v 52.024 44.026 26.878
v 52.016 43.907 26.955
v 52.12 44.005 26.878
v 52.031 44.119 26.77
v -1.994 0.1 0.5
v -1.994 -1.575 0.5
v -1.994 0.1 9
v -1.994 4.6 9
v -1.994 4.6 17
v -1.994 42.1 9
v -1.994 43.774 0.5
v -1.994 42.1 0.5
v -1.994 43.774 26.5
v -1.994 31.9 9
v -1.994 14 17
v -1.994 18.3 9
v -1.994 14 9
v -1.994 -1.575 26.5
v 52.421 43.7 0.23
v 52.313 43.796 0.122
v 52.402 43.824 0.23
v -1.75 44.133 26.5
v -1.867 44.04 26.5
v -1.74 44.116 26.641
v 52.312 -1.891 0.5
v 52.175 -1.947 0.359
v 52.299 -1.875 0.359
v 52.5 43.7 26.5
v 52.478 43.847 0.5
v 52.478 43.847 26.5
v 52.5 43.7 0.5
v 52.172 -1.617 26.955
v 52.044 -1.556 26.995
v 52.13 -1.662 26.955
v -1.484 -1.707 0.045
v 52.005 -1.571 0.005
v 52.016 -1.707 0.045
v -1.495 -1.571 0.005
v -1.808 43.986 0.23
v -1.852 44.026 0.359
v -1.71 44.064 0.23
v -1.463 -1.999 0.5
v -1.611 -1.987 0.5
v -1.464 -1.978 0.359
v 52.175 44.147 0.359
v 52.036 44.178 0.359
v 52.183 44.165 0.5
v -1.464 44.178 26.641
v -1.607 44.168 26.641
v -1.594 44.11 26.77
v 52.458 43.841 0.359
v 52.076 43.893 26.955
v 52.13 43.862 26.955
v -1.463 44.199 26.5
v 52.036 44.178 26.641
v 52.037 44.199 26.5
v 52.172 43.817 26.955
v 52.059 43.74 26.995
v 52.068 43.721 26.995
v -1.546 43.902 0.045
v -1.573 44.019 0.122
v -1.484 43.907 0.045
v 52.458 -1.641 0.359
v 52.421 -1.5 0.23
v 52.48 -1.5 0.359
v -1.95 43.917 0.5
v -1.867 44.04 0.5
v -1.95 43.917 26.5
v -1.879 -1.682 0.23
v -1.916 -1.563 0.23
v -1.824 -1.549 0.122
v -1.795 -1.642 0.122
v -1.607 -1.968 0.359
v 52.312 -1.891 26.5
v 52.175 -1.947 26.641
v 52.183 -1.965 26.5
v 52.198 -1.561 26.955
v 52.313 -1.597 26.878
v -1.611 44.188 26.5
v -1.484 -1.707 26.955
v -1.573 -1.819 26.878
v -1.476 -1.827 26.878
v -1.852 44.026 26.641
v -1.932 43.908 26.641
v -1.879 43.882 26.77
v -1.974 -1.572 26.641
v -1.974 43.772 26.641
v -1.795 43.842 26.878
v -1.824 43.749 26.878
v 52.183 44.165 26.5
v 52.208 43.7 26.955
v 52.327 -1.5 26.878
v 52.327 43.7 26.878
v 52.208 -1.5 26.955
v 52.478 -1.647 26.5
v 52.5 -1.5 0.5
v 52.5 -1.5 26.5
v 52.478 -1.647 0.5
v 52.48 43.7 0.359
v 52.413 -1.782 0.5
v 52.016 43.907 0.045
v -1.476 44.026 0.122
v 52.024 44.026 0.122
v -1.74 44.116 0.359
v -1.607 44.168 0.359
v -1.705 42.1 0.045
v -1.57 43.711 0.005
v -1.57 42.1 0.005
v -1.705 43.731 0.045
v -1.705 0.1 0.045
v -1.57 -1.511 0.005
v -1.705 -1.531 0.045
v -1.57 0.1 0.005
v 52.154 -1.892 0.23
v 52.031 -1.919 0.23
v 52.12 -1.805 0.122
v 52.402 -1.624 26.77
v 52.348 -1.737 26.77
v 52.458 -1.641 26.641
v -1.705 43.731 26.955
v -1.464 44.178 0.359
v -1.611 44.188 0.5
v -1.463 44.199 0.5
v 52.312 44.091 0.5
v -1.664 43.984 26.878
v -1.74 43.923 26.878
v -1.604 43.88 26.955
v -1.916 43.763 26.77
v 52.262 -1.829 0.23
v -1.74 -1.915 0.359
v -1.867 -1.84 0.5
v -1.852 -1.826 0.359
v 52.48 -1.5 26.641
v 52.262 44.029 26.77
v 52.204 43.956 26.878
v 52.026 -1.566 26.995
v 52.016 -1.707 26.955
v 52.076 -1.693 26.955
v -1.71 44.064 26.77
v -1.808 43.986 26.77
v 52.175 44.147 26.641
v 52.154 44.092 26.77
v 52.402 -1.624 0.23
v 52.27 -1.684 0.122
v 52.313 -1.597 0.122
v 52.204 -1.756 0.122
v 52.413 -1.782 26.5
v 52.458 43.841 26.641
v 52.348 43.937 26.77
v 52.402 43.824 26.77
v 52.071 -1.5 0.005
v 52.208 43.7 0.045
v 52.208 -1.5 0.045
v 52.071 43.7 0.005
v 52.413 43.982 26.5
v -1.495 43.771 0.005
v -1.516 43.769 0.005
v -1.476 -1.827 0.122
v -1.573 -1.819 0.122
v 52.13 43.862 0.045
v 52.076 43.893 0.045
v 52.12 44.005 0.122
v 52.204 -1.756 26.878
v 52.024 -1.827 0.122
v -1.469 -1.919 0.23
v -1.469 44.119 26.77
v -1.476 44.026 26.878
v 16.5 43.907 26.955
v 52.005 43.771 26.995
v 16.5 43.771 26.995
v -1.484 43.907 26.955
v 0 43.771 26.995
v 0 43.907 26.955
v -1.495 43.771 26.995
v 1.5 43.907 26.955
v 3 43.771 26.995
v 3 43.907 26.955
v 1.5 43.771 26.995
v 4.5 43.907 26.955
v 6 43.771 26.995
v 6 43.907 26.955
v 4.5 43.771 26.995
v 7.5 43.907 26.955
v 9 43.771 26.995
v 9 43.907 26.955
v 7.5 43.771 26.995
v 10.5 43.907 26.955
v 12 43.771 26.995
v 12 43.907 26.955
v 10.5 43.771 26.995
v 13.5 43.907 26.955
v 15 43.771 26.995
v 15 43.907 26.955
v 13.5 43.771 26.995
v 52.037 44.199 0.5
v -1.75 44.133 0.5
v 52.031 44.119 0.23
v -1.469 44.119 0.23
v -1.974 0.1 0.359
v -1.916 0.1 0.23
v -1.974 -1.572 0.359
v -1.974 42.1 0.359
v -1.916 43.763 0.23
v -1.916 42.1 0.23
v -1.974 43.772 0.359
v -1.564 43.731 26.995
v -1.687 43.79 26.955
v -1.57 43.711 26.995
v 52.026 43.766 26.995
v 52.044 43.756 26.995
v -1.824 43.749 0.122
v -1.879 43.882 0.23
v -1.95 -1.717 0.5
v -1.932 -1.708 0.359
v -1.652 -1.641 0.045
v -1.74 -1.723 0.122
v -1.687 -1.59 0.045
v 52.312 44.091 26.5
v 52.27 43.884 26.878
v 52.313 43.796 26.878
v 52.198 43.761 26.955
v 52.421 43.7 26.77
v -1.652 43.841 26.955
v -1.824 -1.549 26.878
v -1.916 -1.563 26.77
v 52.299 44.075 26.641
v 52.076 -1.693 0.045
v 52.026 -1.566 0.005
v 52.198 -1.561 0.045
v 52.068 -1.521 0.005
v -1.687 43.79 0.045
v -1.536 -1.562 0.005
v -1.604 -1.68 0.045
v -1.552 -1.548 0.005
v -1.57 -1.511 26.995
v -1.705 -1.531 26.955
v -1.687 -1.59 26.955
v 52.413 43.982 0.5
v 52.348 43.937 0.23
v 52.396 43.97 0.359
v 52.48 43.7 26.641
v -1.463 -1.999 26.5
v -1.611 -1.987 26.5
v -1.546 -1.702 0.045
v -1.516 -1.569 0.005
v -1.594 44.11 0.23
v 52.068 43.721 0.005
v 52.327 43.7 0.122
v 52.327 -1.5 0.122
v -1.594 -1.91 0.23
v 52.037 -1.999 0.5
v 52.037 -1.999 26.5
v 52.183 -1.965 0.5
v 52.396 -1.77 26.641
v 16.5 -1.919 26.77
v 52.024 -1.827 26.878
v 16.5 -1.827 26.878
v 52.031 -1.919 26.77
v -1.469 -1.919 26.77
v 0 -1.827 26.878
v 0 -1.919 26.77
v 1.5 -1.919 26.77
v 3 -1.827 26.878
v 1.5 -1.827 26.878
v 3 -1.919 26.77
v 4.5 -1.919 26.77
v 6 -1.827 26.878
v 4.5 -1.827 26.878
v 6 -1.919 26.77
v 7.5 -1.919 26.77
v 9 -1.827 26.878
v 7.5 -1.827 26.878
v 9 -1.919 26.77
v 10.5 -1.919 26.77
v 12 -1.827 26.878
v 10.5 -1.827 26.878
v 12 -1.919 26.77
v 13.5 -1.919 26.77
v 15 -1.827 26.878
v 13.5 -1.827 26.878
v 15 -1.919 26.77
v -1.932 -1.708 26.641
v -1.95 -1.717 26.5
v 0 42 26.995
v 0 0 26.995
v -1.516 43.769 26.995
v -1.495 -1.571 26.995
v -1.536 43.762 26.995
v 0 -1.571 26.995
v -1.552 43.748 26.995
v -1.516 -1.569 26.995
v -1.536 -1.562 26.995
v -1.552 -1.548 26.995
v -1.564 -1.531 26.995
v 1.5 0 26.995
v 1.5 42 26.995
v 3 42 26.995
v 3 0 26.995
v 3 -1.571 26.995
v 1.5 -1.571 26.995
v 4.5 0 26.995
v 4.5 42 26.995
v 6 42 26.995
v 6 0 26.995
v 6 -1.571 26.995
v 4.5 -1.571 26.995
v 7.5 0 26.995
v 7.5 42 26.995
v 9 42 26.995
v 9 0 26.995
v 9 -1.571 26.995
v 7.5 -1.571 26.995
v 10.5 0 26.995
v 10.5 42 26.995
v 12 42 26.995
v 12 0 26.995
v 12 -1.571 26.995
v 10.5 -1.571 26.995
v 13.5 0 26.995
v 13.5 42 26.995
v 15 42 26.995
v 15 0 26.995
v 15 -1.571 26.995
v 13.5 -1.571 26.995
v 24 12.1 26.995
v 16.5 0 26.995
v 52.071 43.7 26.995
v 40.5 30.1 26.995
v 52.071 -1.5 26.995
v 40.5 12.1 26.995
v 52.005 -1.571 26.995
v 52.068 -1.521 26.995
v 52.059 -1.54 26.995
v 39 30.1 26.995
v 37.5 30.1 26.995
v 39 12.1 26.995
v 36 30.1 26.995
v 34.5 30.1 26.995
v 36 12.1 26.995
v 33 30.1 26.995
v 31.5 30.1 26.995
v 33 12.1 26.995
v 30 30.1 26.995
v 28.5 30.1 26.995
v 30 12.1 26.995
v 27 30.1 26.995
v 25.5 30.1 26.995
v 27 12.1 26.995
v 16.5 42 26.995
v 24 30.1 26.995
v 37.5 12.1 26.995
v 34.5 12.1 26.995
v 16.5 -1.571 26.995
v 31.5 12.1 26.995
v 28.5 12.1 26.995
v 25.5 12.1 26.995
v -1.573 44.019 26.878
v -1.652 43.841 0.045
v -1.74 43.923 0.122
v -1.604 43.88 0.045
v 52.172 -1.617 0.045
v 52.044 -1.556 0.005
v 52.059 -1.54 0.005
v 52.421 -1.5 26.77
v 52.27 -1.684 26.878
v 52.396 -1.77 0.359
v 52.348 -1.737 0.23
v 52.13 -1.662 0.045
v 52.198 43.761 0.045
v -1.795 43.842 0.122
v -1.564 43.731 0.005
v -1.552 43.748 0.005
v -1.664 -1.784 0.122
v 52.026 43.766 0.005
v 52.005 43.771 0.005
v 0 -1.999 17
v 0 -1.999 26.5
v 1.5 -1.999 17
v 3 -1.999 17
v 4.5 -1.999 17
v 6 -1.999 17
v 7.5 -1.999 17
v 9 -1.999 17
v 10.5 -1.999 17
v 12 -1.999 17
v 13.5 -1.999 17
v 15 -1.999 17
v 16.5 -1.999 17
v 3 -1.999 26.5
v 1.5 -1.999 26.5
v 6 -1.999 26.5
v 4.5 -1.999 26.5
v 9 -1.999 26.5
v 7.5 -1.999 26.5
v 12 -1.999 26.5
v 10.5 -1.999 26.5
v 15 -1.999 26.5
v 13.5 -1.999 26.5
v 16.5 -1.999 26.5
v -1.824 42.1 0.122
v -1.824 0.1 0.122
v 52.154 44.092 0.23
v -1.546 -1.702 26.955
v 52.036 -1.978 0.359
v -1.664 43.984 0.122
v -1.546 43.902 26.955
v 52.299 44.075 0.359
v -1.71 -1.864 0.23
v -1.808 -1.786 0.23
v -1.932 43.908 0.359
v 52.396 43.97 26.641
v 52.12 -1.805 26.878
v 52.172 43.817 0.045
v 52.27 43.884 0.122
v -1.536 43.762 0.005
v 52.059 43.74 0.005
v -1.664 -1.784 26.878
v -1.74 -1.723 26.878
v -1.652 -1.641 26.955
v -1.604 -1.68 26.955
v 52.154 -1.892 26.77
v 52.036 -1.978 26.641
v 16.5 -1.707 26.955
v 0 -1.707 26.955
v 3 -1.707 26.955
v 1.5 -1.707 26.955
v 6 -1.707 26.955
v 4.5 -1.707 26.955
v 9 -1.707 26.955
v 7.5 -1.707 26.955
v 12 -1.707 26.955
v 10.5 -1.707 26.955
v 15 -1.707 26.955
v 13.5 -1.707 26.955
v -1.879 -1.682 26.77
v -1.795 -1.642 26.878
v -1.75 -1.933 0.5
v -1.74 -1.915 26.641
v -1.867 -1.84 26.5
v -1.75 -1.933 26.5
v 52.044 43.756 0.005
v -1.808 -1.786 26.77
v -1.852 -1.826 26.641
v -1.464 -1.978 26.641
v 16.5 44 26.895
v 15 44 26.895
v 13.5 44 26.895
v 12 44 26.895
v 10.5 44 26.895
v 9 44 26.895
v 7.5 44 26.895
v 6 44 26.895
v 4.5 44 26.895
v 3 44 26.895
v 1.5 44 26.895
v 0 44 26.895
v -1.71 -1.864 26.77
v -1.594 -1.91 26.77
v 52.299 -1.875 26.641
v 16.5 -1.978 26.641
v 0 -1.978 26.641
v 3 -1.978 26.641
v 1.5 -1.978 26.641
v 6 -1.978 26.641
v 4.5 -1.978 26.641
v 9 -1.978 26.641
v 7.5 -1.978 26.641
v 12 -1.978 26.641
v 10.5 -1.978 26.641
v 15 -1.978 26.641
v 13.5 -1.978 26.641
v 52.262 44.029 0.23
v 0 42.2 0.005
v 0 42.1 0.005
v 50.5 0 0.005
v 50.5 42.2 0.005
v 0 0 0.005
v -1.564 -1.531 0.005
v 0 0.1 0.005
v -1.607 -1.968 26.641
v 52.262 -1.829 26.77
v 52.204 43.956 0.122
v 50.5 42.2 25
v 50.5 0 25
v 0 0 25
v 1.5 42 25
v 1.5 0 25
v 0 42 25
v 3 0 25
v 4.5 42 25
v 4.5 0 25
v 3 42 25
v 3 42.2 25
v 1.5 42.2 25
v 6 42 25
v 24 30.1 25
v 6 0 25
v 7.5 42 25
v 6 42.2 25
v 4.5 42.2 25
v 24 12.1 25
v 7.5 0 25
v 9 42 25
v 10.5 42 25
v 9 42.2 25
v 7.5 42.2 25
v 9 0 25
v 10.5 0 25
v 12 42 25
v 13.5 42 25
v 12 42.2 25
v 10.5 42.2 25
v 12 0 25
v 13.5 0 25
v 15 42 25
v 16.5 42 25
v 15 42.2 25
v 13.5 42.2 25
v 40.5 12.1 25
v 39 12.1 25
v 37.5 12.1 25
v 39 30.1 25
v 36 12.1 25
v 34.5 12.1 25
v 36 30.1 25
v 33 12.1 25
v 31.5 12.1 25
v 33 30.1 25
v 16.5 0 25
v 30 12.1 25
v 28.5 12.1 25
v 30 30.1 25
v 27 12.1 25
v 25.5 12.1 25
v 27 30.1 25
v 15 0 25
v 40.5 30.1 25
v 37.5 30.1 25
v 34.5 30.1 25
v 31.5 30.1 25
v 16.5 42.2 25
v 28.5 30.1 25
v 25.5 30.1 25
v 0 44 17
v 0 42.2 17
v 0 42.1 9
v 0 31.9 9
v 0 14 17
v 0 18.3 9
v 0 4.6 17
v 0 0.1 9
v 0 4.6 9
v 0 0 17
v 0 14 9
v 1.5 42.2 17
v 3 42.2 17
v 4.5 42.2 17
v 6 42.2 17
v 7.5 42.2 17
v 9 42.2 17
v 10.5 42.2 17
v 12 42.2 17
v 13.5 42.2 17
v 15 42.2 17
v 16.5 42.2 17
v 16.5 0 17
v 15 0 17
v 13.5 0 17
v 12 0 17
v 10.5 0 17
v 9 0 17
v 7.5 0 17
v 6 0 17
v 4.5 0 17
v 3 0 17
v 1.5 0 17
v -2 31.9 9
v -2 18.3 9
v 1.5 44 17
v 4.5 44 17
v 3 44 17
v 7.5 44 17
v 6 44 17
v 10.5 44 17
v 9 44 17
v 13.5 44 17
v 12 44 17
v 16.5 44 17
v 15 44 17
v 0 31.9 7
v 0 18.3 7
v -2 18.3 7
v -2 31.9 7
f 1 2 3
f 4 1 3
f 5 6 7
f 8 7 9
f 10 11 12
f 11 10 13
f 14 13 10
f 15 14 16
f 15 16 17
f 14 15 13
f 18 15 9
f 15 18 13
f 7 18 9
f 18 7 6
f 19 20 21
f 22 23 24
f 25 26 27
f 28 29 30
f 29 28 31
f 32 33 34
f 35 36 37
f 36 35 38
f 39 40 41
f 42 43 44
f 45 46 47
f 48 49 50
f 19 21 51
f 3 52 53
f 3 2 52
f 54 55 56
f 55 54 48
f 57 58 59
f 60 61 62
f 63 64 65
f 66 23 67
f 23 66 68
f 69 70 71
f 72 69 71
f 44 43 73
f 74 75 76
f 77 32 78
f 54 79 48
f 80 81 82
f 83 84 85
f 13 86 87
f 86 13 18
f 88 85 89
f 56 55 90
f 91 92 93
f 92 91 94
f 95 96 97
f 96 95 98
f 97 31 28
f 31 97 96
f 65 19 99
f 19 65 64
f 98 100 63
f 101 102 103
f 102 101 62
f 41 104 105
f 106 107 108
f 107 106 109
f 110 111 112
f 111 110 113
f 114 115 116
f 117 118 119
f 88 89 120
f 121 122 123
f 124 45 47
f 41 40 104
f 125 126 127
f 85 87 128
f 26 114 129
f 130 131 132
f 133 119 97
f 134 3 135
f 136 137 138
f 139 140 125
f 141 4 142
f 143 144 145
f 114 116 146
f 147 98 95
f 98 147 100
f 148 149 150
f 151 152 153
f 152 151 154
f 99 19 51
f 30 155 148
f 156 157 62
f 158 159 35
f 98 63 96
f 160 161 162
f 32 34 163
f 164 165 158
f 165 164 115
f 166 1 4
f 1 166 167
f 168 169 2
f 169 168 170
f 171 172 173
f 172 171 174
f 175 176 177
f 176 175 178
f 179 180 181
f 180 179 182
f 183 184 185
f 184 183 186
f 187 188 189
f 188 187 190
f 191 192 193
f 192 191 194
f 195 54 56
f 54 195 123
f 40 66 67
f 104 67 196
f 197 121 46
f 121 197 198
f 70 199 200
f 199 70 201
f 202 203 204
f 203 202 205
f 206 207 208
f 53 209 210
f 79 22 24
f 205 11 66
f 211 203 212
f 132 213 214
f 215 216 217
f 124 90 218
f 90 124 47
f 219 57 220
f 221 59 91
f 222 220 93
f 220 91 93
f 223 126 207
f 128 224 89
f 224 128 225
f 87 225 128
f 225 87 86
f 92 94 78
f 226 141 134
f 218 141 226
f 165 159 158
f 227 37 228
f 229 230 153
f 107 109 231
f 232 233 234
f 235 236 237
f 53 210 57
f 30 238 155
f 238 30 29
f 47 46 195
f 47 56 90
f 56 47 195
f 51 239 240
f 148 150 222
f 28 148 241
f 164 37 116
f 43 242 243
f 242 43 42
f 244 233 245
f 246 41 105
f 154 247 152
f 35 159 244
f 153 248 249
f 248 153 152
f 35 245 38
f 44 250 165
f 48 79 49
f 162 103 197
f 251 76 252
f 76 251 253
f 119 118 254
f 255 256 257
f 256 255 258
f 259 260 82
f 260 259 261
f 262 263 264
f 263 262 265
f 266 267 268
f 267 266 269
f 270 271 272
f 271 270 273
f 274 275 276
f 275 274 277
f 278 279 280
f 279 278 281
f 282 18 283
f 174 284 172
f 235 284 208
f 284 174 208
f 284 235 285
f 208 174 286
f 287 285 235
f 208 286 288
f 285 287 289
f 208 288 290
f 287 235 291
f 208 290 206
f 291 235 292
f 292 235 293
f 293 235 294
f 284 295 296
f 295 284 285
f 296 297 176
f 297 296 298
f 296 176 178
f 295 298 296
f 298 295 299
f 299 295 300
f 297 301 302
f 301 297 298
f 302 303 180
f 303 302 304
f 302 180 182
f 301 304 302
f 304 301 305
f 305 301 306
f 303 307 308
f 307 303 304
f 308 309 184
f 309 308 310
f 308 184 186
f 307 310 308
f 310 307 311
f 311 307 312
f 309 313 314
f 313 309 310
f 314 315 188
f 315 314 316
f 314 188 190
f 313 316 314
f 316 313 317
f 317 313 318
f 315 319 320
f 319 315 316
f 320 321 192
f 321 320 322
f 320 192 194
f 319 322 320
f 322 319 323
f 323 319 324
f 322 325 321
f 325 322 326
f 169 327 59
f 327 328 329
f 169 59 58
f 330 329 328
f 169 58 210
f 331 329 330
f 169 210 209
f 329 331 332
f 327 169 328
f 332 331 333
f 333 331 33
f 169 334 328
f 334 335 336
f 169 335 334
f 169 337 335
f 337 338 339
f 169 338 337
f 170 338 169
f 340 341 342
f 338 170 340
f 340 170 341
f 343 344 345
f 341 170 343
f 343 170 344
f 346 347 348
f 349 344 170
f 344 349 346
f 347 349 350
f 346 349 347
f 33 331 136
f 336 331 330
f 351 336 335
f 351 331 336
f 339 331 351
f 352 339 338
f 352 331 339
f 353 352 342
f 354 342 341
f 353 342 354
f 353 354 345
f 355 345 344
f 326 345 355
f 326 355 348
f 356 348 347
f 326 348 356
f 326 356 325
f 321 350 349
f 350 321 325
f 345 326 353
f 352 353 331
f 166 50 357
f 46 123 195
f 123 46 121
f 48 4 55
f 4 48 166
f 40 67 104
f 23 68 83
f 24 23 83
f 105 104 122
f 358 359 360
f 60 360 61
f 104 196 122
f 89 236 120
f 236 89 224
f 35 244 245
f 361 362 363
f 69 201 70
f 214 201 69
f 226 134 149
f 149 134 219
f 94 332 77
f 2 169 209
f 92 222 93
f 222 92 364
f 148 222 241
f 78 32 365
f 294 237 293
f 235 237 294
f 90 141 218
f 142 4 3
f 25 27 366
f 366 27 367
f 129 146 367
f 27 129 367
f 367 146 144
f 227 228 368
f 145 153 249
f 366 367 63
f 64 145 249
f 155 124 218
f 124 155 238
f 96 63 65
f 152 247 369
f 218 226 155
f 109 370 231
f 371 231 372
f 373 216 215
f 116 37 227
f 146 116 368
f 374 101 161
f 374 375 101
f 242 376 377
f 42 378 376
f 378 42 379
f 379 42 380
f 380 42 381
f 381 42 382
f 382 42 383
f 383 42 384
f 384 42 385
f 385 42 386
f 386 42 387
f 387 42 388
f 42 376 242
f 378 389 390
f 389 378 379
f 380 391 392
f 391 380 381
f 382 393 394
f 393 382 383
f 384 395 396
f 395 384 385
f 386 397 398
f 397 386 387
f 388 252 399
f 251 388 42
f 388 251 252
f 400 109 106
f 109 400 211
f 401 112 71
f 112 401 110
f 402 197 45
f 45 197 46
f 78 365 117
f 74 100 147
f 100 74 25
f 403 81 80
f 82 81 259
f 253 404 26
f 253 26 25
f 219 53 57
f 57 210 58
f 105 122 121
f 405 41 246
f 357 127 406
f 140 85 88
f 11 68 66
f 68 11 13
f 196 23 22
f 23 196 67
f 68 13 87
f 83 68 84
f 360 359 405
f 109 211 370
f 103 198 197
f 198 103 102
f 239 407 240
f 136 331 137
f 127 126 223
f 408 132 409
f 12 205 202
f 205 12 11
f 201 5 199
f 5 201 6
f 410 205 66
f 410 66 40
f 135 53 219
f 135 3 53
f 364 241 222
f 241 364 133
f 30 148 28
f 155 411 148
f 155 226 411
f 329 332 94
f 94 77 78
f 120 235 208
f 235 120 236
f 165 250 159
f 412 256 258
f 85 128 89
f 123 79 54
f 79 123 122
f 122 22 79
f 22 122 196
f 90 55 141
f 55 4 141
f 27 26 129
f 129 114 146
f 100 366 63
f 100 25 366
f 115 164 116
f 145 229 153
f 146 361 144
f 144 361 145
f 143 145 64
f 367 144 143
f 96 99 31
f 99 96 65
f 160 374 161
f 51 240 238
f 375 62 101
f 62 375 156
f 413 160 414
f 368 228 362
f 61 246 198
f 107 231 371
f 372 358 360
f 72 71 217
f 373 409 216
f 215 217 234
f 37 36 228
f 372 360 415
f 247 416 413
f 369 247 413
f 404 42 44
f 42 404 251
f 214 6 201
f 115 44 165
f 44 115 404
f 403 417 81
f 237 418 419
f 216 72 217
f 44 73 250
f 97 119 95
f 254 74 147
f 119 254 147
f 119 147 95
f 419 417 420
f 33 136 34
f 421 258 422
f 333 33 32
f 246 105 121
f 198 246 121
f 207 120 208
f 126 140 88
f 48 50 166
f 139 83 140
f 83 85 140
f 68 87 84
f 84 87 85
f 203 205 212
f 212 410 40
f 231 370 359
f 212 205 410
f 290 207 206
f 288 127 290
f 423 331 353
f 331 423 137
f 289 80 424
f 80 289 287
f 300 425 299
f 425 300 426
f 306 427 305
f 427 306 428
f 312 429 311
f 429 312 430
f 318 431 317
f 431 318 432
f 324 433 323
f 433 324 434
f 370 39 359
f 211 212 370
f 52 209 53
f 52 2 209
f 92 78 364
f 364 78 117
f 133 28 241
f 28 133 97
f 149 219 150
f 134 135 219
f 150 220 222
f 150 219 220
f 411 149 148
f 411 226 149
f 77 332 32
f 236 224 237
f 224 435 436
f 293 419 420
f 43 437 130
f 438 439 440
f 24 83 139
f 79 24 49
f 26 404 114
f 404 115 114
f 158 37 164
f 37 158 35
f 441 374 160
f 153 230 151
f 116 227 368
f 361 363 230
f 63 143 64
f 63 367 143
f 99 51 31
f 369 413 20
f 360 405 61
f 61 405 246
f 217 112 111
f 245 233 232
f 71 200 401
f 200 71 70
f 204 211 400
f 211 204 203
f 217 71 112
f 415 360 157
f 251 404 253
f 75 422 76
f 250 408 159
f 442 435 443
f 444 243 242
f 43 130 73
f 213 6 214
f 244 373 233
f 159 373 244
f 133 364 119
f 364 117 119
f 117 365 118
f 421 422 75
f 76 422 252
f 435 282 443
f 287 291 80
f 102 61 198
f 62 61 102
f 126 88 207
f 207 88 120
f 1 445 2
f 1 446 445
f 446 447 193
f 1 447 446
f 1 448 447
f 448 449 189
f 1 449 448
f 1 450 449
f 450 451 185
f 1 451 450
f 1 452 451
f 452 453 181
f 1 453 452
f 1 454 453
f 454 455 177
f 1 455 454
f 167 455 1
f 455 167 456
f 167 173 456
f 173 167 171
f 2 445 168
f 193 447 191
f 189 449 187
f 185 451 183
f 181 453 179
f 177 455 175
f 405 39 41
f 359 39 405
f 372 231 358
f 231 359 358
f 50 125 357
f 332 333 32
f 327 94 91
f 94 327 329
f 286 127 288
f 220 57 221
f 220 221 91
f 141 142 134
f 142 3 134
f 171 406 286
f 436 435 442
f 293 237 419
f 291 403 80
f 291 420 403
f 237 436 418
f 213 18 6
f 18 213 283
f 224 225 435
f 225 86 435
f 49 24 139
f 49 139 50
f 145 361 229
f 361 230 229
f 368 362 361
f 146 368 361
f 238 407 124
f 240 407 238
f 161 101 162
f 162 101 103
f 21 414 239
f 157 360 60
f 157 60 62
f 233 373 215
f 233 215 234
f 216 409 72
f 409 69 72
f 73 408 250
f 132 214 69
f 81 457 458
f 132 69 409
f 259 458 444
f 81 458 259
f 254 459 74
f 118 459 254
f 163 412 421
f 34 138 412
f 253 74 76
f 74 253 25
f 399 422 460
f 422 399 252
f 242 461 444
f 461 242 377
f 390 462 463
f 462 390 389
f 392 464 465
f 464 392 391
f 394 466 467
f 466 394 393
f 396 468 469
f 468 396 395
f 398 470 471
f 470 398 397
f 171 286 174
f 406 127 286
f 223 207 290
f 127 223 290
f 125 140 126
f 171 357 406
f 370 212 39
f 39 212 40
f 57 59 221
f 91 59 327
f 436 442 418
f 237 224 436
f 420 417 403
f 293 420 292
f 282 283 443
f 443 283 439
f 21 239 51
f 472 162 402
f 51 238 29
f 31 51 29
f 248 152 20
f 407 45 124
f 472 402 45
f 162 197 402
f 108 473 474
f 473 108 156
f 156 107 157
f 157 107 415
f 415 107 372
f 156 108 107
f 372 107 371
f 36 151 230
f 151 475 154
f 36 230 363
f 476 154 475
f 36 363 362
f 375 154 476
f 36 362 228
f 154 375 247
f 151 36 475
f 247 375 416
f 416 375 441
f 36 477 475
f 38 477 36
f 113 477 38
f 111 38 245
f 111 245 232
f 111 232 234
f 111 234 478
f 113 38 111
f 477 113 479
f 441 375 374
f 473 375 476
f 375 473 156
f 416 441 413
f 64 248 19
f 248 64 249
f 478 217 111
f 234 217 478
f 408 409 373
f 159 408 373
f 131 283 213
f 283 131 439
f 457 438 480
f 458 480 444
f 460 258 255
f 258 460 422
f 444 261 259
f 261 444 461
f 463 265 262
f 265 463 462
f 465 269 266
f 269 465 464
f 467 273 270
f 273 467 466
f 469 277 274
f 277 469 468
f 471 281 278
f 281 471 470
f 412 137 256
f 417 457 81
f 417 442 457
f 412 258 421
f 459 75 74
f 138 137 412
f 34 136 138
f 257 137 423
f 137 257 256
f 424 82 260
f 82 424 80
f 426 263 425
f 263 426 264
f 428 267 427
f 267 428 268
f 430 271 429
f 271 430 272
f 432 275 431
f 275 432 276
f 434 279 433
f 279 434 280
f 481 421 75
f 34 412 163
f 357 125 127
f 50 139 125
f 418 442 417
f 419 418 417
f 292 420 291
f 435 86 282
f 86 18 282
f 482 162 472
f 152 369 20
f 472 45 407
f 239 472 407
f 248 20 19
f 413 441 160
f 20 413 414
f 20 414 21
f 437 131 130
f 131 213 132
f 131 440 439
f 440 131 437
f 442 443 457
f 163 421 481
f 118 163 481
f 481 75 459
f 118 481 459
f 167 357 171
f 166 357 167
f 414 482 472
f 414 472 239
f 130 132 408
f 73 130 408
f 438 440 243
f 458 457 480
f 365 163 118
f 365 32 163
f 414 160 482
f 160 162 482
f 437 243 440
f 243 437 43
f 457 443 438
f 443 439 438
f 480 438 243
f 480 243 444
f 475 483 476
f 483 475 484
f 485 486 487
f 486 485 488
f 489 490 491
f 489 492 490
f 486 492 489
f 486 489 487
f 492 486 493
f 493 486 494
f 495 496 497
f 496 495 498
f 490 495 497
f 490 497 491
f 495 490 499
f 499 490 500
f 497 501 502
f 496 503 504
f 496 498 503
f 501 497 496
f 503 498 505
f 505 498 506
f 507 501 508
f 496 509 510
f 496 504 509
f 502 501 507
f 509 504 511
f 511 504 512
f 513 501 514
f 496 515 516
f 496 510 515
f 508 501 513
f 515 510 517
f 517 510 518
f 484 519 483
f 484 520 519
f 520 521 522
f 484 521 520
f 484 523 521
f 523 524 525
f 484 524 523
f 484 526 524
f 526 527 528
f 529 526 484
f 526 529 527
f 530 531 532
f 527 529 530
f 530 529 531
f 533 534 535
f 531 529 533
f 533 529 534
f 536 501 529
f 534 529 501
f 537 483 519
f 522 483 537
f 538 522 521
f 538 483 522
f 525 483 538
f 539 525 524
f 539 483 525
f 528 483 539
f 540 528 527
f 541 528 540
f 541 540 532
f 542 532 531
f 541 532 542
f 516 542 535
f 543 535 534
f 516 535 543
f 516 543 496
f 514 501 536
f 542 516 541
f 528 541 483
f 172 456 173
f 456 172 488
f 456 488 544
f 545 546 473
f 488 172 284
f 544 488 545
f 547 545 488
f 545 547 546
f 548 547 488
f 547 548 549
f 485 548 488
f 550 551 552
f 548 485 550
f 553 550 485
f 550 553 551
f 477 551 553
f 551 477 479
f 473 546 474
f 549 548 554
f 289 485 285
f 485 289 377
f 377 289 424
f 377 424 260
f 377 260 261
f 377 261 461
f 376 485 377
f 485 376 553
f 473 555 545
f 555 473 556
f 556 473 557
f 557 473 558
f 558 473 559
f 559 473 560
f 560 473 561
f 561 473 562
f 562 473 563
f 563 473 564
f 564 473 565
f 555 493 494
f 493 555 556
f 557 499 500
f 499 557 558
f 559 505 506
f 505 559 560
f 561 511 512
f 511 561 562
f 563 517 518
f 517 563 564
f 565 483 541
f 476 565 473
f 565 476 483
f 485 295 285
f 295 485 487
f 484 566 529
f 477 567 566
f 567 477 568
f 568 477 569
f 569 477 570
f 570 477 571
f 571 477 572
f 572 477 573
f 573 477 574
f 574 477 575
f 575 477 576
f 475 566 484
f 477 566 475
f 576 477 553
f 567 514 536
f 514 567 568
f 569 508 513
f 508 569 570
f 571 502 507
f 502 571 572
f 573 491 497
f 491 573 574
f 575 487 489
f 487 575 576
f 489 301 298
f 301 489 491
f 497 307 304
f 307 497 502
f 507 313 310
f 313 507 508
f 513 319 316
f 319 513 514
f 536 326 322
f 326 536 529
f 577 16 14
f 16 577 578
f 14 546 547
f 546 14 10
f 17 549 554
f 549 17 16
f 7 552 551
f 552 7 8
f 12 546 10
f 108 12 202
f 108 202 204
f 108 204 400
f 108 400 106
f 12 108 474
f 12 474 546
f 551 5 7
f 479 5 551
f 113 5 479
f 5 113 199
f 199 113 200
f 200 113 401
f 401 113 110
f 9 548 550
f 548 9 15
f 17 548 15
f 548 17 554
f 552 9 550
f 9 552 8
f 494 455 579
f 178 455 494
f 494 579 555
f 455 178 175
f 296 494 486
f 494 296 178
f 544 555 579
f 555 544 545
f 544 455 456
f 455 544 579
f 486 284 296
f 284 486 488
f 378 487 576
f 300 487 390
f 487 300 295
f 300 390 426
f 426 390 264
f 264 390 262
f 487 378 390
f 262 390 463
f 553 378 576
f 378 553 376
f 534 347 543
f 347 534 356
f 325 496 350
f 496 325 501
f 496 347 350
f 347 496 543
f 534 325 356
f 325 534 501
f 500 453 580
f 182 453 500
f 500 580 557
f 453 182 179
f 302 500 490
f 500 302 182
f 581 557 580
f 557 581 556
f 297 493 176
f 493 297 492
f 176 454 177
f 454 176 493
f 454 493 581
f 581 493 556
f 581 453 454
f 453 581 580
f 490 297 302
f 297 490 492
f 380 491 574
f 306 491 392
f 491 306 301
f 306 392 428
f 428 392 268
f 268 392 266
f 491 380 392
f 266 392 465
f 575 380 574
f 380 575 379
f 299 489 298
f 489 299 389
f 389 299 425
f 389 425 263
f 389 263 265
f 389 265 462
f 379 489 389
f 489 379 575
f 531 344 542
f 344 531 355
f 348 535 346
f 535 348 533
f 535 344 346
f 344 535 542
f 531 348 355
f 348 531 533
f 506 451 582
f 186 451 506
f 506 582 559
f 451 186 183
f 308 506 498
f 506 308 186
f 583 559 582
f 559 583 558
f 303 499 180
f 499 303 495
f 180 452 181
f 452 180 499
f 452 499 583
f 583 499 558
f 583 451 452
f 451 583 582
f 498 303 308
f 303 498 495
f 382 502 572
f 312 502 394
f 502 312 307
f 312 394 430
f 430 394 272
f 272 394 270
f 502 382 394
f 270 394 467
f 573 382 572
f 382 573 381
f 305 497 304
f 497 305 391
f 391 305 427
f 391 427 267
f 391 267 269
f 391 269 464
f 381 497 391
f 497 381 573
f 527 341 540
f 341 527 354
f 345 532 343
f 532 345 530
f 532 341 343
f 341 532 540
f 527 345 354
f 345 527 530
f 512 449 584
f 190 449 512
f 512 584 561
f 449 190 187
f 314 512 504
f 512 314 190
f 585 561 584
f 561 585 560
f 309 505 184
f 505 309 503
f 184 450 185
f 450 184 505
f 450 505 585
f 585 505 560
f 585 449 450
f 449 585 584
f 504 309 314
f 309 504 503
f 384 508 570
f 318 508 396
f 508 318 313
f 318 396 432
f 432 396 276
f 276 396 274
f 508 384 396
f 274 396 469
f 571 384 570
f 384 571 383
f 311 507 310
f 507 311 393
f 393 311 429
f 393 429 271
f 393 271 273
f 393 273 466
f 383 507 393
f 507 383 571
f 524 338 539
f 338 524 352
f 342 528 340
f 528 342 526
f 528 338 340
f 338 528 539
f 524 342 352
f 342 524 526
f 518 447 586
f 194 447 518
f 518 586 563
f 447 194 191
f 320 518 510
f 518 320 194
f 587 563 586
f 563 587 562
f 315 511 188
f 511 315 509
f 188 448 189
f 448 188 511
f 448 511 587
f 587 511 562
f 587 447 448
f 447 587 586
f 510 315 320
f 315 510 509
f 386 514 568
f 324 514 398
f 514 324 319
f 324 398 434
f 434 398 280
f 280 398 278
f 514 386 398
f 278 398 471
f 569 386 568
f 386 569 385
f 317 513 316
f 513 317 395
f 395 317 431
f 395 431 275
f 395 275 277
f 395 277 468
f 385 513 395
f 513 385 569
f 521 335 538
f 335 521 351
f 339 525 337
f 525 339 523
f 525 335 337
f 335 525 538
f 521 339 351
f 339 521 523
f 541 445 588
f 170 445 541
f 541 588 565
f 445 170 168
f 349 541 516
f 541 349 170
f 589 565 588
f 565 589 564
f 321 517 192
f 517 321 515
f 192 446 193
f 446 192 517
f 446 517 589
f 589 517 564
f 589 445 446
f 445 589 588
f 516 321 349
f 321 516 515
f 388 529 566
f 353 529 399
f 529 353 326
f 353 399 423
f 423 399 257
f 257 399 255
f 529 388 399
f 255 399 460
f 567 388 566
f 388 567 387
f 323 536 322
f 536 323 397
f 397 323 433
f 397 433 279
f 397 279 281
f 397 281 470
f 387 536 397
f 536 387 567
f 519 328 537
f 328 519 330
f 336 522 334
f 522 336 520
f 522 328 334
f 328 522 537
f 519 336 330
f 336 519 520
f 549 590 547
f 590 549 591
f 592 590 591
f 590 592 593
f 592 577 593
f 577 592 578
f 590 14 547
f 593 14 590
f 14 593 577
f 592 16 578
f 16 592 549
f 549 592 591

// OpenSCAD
$fa = 1;
$fs = 0.15;

thick         = 2; 
vent_width    = 1.5;   

box_x_adj = 0.5;
box_y_adj = 0.2;
box_z_adj = 0;

//Box
difference(){
    union(){
        difference(){
            difference(){
                translate([-2,-2,0])
                roundedcube([54+box_x_adj,46+box_y_adj,27]);
                cube([50+box_x_adj,42+box_y_adj,25]);
            }
            translate([-2,(box_y_adj/2),0])
            cube([2,42,9]);
            translate([-2,4.5+(box_y_adj/2),9])
            cube([2,9.4,8]);
        }

        translate([-2,18.2+(box_y_adj/2),7])
        cube([2,13.6,2]);
    }

    //vents
    for(i=[0:thick+1:15]){
        translate([i,42,17])
        cube([vent_width,2,10]);
        
        translate([i,-2,17])
        cube([vent_width,2,10]);
        
        translate([24+i,12+(box_y_adj/2),25])
        cube([vent_width,18,3]);
    }

}

module roundedcube(size = [1, 1, 1], center = false, radius = 0.5, apply_to = "all") {
	// If single value, convert to [x, y, z] vector
	size = (size[0] == undef) ? [size, size, size] : size;

	translate_min = radius;
	translate_xmax = size[0] - radius;
	translate_ymax = size[1] - radius;
	translate_zmax = size[2] - radius;

	diameter = radius * 2;

	obj_translate = (center == false) ?
		[0, 0, 0] : [
			-(size[0] / 2),
			-(size[1] / 2),
			-(size[2] / 2)
		];

	translate(v = obj_translate) {
		hull() {
			for (translate_x = [translate_min, translate_xmax]) {
				x_at = (translate_x == translate_min) ? "min" : "max";
				for (translate_y = [translate_min, translate_ymax]) {
					y_at = (translate_y == translate_min) ? "min" : "max";
					for (translate_z = [translate_min, translate_zmax]) {
						z_at = (translate_z == translate_min) ? "min" : "max";

						translate(v = [translate_x, translate_y, translate_z])
						if (
							(apply_to == "all") ||
							(apply_to == "xmin" && x_at == "min") || (apply_to == "xmax" && x_at == "max") ||
							(apply_to == "ymin" && y_at == "min") || (apply_to == "ymax" && y_at == "max") ||
							(apply_to == "zmin" && z_at == "min") || (apply_to == "zmax" && z_at == "max")
						) {
							sphere(r = radius);
						} else {
							rotate = 
								(apply_to == "xmin" || apply_to == "xmax" || apply_to == "x") ? [0, 90, 0] : (
								(apply_to == "ymin" || apply_to == "ymax" || apply_to == "y") ? [90, 90, 0] :
								[0, 0, 0]
							);
							rotate(a = rotate)
							cylinder(h = diameter, r = radius, center = true);
						}
					}
				}
			}
		}
	}
}
